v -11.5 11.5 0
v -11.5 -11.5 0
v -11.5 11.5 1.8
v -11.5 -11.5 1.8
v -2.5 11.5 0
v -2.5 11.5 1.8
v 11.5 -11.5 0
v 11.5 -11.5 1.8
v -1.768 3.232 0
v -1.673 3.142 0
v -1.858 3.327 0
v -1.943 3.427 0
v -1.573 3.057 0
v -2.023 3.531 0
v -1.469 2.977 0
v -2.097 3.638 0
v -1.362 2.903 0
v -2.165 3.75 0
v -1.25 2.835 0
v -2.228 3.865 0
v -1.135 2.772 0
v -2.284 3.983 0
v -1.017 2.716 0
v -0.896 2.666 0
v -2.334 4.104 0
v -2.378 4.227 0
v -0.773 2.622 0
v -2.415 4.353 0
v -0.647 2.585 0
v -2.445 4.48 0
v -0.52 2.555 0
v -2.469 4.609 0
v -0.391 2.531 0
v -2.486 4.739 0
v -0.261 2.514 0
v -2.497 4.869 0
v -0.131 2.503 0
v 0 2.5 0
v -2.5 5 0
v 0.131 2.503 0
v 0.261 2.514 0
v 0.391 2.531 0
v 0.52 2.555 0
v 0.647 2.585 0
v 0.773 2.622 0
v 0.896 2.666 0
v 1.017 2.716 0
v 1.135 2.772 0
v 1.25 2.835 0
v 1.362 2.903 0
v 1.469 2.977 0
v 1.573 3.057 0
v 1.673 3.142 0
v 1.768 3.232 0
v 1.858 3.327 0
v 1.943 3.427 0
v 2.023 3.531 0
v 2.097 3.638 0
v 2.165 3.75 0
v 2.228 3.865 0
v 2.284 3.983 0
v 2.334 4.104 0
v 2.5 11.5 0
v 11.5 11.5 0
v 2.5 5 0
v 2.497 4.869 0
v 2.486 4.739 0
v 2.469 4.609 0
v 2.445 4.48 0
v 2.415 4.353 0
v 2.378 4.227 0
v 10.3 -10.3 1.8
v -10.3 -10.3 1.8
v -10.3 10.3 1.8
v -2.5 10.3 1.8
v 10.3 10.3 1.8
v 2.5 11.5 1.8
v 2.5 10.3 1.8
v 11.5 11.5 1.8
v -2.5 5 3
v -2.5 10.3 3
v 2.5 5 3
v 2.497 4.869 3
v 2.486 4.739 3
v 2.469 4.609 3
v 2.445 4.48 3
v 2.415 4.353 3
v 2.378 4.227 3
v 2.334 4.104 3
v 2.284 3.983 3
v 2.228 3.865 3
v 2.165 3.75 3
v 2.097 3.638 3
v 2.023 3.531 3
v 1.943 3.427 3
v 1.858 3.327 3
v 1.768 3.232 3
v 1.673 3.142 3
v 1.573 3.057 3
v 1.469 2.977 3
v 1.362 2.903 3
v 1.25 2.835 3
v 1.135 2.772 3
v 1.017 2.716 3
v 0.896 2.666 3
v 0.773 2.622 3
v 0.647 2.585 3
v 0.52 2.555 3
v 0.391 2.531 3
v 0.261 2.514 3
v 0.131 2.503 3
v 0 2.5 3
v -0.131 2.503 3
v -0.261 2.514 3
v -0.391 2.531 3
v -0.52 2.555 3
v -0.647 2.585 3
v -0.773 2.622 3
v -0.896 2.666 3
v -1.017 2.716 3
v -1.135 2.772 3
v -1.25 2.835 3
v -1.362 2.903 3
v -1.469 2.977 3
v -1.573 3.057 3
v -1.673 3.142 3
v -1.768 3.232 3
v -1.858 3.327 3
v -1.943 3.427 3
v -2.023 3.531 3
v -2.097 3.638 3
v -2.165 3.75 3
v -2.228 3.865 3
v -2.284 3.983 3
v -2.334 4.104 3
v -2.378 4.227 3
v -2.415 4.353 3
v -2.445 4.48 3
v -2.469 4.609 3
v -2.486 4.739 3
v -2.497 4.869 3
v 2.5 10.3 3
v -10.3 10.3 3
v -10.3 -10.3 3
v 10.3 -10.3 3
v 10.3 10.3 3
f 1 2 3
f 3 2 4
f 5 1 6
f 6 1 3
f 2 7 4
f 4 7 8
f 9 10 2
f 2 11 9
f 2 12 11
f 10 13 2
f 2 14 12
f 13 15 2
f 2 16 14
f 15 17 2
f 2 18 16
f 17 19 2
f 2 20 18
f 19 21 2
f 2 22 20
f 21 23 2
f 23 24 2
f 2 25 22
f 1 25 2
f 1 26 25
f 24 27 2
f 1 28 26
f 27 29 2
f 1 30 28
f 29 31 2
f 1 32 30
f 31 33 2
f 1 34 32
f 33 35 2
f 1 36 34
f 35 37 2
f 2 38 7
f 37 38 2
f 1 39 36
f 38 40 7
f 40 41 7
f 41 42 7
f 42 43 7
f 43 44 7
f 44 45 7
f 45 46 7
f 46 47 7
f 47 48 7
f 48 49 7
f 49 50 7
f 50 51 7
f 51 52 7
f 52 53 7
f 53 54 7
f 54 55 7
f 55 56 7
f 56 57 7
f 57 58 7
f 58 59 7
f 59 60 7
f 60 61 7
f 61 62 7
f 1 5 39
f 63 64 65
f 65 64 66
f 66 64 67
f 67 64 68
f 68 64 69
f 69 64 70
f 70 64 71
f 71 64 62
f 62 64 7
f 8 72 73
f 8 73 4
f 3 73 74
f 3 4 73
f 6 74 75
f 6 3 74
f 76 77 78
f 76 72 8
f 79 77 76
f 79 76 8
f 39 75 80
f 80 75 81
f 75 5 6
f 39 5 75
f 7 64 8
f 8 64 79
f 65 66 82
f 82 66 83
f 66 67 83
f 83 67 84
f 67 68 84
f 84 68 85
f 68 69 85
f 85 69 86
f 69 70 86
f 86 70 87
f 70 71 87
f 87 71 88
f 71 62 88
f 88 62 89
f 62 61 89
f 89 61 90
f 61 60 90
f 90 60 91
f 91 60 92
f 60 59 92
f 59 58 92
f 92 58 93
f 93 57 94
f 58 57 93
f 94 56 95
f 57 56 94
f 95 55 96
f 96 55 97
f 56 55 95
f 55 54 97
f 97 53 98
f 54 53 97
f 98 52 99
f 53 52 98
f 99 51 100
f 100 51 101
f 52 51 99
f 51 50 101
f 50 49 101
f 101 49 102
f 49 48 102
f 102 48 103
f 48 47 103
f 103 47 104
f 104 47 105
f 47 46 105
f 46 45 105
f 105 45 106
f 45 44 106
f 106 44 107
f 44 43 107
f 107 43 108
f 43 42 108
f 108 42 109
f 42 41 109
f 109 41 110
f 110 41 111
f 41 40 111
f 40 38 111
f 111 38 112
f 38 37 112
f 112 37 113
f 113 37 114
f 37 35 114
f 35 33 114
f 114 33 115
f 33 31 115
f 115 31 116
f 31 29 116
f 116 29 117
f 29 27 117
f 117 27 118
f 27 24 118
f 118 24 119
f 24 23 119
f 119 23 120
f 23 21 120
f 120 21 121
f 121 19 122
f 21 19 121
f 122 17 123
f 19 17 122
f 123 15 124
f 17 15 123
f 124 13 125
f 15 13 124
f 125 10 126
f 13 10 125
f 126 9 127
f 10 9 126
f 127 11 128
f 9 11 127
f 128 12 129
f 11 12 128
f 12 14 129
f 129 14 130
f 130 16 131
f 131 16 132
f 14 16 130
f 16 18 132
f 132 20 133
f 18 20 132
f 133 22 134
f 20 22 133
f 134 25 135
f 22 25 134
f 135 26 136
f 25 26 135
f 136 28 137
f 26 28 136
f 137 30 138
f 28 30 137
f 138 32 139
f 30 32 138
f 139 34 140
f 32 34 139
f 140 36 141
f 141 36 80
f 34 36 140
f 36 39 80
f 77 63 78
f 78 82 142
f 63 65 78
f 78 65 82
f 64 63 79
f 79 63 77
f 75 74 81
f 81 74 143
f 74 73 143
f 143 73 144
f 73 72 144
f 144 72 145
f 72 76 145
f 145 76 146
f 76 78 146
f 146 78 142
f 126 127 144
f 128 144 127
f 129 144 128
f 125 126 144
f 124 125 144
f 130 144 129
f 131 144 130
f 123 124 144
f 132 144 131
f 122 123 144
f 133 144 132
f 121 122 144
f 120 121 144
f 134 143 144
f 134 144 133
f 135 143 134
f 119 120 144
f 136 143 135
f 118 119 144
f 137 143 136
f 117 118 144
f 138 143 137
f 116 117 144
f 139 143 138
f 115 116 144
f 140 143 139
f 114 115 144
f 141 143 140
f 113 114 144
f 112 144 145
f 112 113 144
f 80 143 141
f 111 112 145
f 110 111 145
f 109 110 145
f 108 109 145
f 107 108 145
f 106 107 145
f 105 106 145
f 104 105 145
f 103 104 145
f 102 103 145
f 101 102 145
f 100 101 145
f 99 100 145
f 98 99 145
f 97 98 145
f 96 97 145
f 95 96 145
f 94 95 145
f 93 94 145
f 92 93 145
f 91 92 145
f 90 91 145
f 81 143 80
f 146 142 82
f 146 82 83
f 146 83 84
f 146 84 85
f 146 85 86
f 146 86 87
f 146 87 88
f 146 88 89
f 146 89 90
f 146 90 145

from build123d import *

# Parameters (mm, degrees)
SKETCH_W     = 23
SKETCH_H     = 23
PAD_DEPTH    = 1.8
SKETCH001_W  = 20.6
SKETCH001_H  = 20.6
PAD001_DEPTH = 1.2
POCKET_DEPTH = 5


with BuildPart() as part:
    # Sketch → Pad (new body)
    with BuildSketch(Plane.XY):
        Rectangle(SKETCH_W, SKETCH_H)
    extrude(amount=PAD_DEPTH)

    # Sketch001 (on Face6 of Pad) → Pad001 (join)
    with BuildSketch(Plane.XY.offset(1.8)):
        Rectangle(SKETCH001_W, SKETCH001_H)
    extrude(amount=PAD001_DEPTH)

    # Sketch002 (on Face4 of Pad001) → Pocket (cut)
    with BuildSketch(Plane(origin=(0, 0, 0), x_dir=(1, 0, 0), z_dir=(0, 0, -1))):
        with BuildLine():
            ThreePointArc((2.5, -5), (0, -2.5), (-2.5, -5))
            Line((-2.5, -5), (-2.5, -13.46))
            ThreePointArc((-2.5, -13.46), (0, -15.96), (2.5, -13.46))
            Line((2.5, -13.46), (2.5, -5))
        make_face()
    extrude(amount=-POCKET_DEPTH, mode=Mode.SUBTRACT)


solid = part.part
